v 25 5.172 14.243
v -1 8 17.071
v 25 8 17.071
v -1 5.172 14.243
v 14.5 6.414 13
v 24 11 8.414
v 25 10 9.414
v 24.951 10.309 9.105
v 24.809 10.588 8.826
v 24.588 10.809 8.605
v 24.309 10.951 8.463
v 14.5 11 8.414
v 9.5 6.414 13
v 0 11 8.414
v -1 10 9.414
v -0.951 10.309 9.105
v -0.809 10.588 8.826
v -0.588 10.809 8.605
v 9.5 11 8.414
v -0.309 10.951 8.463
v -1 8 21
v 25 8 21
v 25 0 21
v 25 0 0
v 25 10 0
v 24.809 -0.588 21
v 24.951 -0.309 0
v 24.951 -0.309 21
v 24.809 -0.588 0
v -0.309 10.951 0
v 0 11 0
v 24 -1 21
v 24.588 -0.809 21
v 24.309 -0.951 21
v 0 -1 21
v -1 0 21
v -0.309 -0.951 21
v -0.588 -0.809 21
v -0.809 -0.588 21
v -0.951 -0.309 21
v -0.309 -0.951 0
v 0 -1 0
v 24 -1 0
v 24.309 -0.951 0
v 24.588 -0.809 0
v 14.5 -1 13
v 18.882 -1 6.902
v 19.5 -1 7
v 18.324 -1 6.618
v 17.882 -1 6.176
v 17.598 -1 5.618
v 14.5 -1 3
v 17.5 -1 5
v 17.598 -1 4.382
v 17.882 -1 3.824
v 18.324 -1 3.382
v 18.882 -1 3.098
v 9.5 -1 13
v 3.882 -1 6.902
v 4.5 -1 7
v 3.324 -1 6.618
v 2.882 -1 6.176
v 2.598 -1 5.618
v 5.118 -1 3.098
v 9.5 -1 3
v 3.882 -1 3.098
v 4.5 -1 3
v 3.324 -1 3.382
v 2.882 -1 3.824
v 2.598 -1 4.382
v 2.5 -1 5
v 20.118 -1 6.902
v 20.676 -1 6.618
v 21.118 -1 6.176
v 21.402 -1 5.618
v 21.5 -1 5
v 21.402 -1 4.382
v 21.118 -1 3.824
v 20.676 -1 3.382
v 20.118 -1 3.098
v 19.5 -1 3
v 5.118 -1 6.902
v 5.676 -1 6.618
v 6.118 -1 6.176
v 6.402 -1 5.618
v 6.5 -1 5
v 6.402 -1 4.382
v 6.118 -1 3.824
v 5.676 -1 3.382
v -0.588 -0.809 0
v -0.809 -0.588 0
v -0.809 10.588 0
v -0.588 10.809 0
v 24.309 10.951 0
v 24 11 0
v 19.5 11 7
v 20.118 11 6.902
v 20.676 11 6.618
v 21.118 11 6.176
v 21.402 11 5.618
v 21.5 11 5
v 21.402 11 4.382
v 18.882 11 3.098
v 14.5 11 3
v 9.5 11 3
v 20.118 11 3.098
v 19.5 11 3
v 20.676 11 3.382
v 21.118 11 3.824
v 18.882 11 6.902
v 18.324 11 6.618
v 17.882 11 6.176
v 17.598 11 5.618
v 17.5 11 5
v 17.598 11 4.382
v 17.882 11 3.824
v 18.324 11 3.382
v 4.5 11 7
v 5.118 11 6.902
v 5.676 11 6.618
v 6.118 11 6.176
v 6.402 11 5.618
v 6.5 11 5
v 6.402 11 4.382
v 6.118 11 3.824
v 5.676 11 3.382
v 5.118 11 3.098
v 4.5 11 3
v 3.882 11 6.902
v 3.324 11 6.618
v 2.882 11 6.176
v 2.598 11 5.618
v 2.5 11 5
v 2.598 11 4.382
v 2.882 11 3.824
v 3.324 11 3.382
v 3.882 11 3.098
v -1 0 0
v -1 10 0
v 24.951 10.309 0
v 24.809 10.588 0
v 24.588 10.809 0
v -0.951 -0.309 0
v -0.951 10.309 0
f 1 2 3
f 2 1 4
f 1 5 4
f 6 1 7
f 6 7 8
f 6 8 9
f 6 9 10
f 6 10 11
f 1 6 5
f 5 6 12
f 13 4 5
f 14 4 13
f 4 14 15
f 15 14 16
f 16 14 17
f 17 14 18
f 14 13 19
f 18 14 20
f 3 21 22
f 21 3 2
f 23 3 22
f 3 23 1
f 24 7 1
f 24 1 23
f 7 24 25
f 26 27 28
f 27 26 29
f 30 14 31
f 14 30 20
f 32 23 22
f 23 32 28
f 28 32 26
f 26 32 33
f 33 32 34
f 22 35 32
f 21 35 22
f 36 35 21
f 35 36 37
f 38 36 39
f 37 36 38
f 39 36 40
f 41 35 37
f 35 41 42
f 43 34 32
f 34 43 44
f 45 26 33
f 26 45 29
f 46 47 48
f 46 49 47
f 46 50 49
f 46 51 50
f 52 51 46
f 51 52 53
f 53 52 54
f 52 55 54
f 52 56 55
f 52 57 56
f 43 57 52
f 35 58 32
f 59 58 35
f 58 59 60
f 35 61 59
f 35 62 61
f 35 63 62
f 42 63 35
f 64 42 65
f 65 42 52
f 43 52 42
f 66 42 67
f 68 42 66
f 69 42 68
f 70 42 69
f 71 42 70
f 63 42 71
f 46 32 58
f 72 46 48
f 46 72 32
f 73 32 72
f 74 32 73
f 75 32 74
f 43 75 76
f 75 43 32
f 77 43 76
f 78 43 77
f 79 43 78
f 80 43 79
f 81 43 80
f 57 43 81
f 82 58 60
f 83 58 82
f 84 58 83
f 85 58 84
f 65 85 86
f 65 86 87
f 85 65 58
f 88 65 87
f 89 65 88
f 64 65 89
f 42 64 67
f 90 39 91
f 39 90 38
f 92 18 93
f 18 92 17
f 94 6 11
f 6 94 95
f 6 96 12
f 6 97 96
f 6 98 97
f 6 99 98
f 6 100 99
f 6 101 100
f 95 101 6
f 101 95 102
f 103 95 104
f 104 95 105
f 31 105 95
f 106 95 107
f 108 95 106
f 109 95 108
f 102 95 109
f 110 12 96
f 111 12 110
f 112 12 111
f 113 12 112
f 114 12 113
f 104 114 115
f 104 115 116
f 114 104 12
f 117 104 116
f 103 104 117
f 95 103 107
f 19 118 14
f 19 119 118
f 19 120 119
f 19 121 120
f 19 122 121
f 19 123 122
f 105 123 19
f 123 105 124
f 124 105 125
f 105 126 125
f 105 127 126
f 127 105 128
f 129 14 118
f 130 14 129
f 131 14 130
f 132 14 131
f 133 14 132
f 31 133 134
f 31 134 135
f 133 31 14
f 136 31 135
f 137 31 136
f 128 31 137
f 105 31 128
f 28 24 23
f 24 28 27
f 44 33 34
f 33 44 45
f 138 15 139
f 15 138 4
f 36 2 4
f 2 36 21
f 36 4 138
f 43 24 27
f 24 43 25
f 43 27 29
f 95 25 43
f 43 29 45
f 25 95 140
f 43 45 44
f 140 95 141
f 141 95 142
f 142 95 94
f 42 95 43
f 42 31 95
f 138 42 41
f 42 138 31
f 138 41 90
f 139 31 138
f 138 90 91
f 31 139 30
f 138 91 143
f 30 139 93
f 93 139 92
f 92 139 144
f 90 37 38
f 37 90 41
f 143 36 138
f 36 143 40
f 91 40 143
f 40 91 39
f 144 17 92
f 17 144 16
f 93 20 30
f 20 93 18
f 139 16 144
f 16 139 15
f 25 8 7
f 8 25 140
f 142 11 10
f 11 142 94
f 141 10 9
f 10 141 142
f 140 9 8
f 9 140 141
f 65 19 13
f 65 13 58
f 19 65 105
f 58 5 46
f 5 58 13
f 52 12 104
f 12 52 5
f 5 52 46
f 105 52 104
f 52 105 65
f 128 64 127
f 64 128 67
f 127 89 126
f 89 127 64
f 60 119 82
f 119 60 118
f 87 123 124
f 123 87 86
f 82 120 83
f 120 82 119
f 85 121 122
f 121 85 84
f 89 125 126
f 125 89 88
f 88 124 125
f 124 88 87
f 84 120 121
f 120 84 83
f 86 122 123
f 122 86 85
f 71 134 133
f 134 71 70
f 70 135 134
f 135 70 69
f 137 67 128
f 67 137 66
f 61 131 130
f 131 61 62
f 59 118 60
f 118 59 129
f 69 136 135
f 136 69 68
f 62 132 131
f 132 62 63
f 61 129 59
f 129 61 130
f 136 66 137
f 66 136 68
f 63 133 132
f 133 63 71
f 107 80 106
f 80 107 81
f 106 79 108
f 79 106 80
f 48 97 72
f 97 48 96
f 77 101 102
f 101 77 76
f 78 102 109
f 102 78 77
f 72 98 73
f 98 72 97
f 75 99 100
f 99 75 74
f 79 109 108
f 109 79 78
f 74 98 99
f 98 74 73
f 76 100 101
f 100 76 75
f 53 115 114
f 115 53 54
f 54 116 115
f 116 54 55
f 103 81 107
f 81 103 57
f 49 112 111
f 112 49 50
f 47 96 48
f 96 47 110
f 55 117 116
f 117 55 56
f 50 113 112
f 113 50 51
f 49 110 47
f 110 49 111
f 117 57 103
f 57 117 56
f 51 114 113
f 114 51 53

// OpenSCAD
$fn = 20;     // Team.Mu.Captain@gmail.com

SmoothR       = 1;
SmoothH       = 1;

thickness     = 20;
long          = 24;
wide          = 10;


difference(){
minkowski(){
    cube([long,wide,thickness]);
    cylinder(r=SmoothR,h=SmoothH);
}
//slot
translate([9.5,-6,3]){
    cube([5,60,10]);
}
// screw holes
translate([4.5,50,5]){
rotate([90,90,0]){
    cylinder(r=2,h=80);
}}
translate([19.5,50,5]){
rotate([90,90,0]){
    cylinder(r=2,h=80);
}}
// cut rail
translate([-5,8,10]){
rotate([45,0,0]){
    translate([0,1,-4]){
    cube([long+10, 5, 9]);
    }}
    translate([0,0,2]){
    cube([long+10, 20, 20]);
}}
}
